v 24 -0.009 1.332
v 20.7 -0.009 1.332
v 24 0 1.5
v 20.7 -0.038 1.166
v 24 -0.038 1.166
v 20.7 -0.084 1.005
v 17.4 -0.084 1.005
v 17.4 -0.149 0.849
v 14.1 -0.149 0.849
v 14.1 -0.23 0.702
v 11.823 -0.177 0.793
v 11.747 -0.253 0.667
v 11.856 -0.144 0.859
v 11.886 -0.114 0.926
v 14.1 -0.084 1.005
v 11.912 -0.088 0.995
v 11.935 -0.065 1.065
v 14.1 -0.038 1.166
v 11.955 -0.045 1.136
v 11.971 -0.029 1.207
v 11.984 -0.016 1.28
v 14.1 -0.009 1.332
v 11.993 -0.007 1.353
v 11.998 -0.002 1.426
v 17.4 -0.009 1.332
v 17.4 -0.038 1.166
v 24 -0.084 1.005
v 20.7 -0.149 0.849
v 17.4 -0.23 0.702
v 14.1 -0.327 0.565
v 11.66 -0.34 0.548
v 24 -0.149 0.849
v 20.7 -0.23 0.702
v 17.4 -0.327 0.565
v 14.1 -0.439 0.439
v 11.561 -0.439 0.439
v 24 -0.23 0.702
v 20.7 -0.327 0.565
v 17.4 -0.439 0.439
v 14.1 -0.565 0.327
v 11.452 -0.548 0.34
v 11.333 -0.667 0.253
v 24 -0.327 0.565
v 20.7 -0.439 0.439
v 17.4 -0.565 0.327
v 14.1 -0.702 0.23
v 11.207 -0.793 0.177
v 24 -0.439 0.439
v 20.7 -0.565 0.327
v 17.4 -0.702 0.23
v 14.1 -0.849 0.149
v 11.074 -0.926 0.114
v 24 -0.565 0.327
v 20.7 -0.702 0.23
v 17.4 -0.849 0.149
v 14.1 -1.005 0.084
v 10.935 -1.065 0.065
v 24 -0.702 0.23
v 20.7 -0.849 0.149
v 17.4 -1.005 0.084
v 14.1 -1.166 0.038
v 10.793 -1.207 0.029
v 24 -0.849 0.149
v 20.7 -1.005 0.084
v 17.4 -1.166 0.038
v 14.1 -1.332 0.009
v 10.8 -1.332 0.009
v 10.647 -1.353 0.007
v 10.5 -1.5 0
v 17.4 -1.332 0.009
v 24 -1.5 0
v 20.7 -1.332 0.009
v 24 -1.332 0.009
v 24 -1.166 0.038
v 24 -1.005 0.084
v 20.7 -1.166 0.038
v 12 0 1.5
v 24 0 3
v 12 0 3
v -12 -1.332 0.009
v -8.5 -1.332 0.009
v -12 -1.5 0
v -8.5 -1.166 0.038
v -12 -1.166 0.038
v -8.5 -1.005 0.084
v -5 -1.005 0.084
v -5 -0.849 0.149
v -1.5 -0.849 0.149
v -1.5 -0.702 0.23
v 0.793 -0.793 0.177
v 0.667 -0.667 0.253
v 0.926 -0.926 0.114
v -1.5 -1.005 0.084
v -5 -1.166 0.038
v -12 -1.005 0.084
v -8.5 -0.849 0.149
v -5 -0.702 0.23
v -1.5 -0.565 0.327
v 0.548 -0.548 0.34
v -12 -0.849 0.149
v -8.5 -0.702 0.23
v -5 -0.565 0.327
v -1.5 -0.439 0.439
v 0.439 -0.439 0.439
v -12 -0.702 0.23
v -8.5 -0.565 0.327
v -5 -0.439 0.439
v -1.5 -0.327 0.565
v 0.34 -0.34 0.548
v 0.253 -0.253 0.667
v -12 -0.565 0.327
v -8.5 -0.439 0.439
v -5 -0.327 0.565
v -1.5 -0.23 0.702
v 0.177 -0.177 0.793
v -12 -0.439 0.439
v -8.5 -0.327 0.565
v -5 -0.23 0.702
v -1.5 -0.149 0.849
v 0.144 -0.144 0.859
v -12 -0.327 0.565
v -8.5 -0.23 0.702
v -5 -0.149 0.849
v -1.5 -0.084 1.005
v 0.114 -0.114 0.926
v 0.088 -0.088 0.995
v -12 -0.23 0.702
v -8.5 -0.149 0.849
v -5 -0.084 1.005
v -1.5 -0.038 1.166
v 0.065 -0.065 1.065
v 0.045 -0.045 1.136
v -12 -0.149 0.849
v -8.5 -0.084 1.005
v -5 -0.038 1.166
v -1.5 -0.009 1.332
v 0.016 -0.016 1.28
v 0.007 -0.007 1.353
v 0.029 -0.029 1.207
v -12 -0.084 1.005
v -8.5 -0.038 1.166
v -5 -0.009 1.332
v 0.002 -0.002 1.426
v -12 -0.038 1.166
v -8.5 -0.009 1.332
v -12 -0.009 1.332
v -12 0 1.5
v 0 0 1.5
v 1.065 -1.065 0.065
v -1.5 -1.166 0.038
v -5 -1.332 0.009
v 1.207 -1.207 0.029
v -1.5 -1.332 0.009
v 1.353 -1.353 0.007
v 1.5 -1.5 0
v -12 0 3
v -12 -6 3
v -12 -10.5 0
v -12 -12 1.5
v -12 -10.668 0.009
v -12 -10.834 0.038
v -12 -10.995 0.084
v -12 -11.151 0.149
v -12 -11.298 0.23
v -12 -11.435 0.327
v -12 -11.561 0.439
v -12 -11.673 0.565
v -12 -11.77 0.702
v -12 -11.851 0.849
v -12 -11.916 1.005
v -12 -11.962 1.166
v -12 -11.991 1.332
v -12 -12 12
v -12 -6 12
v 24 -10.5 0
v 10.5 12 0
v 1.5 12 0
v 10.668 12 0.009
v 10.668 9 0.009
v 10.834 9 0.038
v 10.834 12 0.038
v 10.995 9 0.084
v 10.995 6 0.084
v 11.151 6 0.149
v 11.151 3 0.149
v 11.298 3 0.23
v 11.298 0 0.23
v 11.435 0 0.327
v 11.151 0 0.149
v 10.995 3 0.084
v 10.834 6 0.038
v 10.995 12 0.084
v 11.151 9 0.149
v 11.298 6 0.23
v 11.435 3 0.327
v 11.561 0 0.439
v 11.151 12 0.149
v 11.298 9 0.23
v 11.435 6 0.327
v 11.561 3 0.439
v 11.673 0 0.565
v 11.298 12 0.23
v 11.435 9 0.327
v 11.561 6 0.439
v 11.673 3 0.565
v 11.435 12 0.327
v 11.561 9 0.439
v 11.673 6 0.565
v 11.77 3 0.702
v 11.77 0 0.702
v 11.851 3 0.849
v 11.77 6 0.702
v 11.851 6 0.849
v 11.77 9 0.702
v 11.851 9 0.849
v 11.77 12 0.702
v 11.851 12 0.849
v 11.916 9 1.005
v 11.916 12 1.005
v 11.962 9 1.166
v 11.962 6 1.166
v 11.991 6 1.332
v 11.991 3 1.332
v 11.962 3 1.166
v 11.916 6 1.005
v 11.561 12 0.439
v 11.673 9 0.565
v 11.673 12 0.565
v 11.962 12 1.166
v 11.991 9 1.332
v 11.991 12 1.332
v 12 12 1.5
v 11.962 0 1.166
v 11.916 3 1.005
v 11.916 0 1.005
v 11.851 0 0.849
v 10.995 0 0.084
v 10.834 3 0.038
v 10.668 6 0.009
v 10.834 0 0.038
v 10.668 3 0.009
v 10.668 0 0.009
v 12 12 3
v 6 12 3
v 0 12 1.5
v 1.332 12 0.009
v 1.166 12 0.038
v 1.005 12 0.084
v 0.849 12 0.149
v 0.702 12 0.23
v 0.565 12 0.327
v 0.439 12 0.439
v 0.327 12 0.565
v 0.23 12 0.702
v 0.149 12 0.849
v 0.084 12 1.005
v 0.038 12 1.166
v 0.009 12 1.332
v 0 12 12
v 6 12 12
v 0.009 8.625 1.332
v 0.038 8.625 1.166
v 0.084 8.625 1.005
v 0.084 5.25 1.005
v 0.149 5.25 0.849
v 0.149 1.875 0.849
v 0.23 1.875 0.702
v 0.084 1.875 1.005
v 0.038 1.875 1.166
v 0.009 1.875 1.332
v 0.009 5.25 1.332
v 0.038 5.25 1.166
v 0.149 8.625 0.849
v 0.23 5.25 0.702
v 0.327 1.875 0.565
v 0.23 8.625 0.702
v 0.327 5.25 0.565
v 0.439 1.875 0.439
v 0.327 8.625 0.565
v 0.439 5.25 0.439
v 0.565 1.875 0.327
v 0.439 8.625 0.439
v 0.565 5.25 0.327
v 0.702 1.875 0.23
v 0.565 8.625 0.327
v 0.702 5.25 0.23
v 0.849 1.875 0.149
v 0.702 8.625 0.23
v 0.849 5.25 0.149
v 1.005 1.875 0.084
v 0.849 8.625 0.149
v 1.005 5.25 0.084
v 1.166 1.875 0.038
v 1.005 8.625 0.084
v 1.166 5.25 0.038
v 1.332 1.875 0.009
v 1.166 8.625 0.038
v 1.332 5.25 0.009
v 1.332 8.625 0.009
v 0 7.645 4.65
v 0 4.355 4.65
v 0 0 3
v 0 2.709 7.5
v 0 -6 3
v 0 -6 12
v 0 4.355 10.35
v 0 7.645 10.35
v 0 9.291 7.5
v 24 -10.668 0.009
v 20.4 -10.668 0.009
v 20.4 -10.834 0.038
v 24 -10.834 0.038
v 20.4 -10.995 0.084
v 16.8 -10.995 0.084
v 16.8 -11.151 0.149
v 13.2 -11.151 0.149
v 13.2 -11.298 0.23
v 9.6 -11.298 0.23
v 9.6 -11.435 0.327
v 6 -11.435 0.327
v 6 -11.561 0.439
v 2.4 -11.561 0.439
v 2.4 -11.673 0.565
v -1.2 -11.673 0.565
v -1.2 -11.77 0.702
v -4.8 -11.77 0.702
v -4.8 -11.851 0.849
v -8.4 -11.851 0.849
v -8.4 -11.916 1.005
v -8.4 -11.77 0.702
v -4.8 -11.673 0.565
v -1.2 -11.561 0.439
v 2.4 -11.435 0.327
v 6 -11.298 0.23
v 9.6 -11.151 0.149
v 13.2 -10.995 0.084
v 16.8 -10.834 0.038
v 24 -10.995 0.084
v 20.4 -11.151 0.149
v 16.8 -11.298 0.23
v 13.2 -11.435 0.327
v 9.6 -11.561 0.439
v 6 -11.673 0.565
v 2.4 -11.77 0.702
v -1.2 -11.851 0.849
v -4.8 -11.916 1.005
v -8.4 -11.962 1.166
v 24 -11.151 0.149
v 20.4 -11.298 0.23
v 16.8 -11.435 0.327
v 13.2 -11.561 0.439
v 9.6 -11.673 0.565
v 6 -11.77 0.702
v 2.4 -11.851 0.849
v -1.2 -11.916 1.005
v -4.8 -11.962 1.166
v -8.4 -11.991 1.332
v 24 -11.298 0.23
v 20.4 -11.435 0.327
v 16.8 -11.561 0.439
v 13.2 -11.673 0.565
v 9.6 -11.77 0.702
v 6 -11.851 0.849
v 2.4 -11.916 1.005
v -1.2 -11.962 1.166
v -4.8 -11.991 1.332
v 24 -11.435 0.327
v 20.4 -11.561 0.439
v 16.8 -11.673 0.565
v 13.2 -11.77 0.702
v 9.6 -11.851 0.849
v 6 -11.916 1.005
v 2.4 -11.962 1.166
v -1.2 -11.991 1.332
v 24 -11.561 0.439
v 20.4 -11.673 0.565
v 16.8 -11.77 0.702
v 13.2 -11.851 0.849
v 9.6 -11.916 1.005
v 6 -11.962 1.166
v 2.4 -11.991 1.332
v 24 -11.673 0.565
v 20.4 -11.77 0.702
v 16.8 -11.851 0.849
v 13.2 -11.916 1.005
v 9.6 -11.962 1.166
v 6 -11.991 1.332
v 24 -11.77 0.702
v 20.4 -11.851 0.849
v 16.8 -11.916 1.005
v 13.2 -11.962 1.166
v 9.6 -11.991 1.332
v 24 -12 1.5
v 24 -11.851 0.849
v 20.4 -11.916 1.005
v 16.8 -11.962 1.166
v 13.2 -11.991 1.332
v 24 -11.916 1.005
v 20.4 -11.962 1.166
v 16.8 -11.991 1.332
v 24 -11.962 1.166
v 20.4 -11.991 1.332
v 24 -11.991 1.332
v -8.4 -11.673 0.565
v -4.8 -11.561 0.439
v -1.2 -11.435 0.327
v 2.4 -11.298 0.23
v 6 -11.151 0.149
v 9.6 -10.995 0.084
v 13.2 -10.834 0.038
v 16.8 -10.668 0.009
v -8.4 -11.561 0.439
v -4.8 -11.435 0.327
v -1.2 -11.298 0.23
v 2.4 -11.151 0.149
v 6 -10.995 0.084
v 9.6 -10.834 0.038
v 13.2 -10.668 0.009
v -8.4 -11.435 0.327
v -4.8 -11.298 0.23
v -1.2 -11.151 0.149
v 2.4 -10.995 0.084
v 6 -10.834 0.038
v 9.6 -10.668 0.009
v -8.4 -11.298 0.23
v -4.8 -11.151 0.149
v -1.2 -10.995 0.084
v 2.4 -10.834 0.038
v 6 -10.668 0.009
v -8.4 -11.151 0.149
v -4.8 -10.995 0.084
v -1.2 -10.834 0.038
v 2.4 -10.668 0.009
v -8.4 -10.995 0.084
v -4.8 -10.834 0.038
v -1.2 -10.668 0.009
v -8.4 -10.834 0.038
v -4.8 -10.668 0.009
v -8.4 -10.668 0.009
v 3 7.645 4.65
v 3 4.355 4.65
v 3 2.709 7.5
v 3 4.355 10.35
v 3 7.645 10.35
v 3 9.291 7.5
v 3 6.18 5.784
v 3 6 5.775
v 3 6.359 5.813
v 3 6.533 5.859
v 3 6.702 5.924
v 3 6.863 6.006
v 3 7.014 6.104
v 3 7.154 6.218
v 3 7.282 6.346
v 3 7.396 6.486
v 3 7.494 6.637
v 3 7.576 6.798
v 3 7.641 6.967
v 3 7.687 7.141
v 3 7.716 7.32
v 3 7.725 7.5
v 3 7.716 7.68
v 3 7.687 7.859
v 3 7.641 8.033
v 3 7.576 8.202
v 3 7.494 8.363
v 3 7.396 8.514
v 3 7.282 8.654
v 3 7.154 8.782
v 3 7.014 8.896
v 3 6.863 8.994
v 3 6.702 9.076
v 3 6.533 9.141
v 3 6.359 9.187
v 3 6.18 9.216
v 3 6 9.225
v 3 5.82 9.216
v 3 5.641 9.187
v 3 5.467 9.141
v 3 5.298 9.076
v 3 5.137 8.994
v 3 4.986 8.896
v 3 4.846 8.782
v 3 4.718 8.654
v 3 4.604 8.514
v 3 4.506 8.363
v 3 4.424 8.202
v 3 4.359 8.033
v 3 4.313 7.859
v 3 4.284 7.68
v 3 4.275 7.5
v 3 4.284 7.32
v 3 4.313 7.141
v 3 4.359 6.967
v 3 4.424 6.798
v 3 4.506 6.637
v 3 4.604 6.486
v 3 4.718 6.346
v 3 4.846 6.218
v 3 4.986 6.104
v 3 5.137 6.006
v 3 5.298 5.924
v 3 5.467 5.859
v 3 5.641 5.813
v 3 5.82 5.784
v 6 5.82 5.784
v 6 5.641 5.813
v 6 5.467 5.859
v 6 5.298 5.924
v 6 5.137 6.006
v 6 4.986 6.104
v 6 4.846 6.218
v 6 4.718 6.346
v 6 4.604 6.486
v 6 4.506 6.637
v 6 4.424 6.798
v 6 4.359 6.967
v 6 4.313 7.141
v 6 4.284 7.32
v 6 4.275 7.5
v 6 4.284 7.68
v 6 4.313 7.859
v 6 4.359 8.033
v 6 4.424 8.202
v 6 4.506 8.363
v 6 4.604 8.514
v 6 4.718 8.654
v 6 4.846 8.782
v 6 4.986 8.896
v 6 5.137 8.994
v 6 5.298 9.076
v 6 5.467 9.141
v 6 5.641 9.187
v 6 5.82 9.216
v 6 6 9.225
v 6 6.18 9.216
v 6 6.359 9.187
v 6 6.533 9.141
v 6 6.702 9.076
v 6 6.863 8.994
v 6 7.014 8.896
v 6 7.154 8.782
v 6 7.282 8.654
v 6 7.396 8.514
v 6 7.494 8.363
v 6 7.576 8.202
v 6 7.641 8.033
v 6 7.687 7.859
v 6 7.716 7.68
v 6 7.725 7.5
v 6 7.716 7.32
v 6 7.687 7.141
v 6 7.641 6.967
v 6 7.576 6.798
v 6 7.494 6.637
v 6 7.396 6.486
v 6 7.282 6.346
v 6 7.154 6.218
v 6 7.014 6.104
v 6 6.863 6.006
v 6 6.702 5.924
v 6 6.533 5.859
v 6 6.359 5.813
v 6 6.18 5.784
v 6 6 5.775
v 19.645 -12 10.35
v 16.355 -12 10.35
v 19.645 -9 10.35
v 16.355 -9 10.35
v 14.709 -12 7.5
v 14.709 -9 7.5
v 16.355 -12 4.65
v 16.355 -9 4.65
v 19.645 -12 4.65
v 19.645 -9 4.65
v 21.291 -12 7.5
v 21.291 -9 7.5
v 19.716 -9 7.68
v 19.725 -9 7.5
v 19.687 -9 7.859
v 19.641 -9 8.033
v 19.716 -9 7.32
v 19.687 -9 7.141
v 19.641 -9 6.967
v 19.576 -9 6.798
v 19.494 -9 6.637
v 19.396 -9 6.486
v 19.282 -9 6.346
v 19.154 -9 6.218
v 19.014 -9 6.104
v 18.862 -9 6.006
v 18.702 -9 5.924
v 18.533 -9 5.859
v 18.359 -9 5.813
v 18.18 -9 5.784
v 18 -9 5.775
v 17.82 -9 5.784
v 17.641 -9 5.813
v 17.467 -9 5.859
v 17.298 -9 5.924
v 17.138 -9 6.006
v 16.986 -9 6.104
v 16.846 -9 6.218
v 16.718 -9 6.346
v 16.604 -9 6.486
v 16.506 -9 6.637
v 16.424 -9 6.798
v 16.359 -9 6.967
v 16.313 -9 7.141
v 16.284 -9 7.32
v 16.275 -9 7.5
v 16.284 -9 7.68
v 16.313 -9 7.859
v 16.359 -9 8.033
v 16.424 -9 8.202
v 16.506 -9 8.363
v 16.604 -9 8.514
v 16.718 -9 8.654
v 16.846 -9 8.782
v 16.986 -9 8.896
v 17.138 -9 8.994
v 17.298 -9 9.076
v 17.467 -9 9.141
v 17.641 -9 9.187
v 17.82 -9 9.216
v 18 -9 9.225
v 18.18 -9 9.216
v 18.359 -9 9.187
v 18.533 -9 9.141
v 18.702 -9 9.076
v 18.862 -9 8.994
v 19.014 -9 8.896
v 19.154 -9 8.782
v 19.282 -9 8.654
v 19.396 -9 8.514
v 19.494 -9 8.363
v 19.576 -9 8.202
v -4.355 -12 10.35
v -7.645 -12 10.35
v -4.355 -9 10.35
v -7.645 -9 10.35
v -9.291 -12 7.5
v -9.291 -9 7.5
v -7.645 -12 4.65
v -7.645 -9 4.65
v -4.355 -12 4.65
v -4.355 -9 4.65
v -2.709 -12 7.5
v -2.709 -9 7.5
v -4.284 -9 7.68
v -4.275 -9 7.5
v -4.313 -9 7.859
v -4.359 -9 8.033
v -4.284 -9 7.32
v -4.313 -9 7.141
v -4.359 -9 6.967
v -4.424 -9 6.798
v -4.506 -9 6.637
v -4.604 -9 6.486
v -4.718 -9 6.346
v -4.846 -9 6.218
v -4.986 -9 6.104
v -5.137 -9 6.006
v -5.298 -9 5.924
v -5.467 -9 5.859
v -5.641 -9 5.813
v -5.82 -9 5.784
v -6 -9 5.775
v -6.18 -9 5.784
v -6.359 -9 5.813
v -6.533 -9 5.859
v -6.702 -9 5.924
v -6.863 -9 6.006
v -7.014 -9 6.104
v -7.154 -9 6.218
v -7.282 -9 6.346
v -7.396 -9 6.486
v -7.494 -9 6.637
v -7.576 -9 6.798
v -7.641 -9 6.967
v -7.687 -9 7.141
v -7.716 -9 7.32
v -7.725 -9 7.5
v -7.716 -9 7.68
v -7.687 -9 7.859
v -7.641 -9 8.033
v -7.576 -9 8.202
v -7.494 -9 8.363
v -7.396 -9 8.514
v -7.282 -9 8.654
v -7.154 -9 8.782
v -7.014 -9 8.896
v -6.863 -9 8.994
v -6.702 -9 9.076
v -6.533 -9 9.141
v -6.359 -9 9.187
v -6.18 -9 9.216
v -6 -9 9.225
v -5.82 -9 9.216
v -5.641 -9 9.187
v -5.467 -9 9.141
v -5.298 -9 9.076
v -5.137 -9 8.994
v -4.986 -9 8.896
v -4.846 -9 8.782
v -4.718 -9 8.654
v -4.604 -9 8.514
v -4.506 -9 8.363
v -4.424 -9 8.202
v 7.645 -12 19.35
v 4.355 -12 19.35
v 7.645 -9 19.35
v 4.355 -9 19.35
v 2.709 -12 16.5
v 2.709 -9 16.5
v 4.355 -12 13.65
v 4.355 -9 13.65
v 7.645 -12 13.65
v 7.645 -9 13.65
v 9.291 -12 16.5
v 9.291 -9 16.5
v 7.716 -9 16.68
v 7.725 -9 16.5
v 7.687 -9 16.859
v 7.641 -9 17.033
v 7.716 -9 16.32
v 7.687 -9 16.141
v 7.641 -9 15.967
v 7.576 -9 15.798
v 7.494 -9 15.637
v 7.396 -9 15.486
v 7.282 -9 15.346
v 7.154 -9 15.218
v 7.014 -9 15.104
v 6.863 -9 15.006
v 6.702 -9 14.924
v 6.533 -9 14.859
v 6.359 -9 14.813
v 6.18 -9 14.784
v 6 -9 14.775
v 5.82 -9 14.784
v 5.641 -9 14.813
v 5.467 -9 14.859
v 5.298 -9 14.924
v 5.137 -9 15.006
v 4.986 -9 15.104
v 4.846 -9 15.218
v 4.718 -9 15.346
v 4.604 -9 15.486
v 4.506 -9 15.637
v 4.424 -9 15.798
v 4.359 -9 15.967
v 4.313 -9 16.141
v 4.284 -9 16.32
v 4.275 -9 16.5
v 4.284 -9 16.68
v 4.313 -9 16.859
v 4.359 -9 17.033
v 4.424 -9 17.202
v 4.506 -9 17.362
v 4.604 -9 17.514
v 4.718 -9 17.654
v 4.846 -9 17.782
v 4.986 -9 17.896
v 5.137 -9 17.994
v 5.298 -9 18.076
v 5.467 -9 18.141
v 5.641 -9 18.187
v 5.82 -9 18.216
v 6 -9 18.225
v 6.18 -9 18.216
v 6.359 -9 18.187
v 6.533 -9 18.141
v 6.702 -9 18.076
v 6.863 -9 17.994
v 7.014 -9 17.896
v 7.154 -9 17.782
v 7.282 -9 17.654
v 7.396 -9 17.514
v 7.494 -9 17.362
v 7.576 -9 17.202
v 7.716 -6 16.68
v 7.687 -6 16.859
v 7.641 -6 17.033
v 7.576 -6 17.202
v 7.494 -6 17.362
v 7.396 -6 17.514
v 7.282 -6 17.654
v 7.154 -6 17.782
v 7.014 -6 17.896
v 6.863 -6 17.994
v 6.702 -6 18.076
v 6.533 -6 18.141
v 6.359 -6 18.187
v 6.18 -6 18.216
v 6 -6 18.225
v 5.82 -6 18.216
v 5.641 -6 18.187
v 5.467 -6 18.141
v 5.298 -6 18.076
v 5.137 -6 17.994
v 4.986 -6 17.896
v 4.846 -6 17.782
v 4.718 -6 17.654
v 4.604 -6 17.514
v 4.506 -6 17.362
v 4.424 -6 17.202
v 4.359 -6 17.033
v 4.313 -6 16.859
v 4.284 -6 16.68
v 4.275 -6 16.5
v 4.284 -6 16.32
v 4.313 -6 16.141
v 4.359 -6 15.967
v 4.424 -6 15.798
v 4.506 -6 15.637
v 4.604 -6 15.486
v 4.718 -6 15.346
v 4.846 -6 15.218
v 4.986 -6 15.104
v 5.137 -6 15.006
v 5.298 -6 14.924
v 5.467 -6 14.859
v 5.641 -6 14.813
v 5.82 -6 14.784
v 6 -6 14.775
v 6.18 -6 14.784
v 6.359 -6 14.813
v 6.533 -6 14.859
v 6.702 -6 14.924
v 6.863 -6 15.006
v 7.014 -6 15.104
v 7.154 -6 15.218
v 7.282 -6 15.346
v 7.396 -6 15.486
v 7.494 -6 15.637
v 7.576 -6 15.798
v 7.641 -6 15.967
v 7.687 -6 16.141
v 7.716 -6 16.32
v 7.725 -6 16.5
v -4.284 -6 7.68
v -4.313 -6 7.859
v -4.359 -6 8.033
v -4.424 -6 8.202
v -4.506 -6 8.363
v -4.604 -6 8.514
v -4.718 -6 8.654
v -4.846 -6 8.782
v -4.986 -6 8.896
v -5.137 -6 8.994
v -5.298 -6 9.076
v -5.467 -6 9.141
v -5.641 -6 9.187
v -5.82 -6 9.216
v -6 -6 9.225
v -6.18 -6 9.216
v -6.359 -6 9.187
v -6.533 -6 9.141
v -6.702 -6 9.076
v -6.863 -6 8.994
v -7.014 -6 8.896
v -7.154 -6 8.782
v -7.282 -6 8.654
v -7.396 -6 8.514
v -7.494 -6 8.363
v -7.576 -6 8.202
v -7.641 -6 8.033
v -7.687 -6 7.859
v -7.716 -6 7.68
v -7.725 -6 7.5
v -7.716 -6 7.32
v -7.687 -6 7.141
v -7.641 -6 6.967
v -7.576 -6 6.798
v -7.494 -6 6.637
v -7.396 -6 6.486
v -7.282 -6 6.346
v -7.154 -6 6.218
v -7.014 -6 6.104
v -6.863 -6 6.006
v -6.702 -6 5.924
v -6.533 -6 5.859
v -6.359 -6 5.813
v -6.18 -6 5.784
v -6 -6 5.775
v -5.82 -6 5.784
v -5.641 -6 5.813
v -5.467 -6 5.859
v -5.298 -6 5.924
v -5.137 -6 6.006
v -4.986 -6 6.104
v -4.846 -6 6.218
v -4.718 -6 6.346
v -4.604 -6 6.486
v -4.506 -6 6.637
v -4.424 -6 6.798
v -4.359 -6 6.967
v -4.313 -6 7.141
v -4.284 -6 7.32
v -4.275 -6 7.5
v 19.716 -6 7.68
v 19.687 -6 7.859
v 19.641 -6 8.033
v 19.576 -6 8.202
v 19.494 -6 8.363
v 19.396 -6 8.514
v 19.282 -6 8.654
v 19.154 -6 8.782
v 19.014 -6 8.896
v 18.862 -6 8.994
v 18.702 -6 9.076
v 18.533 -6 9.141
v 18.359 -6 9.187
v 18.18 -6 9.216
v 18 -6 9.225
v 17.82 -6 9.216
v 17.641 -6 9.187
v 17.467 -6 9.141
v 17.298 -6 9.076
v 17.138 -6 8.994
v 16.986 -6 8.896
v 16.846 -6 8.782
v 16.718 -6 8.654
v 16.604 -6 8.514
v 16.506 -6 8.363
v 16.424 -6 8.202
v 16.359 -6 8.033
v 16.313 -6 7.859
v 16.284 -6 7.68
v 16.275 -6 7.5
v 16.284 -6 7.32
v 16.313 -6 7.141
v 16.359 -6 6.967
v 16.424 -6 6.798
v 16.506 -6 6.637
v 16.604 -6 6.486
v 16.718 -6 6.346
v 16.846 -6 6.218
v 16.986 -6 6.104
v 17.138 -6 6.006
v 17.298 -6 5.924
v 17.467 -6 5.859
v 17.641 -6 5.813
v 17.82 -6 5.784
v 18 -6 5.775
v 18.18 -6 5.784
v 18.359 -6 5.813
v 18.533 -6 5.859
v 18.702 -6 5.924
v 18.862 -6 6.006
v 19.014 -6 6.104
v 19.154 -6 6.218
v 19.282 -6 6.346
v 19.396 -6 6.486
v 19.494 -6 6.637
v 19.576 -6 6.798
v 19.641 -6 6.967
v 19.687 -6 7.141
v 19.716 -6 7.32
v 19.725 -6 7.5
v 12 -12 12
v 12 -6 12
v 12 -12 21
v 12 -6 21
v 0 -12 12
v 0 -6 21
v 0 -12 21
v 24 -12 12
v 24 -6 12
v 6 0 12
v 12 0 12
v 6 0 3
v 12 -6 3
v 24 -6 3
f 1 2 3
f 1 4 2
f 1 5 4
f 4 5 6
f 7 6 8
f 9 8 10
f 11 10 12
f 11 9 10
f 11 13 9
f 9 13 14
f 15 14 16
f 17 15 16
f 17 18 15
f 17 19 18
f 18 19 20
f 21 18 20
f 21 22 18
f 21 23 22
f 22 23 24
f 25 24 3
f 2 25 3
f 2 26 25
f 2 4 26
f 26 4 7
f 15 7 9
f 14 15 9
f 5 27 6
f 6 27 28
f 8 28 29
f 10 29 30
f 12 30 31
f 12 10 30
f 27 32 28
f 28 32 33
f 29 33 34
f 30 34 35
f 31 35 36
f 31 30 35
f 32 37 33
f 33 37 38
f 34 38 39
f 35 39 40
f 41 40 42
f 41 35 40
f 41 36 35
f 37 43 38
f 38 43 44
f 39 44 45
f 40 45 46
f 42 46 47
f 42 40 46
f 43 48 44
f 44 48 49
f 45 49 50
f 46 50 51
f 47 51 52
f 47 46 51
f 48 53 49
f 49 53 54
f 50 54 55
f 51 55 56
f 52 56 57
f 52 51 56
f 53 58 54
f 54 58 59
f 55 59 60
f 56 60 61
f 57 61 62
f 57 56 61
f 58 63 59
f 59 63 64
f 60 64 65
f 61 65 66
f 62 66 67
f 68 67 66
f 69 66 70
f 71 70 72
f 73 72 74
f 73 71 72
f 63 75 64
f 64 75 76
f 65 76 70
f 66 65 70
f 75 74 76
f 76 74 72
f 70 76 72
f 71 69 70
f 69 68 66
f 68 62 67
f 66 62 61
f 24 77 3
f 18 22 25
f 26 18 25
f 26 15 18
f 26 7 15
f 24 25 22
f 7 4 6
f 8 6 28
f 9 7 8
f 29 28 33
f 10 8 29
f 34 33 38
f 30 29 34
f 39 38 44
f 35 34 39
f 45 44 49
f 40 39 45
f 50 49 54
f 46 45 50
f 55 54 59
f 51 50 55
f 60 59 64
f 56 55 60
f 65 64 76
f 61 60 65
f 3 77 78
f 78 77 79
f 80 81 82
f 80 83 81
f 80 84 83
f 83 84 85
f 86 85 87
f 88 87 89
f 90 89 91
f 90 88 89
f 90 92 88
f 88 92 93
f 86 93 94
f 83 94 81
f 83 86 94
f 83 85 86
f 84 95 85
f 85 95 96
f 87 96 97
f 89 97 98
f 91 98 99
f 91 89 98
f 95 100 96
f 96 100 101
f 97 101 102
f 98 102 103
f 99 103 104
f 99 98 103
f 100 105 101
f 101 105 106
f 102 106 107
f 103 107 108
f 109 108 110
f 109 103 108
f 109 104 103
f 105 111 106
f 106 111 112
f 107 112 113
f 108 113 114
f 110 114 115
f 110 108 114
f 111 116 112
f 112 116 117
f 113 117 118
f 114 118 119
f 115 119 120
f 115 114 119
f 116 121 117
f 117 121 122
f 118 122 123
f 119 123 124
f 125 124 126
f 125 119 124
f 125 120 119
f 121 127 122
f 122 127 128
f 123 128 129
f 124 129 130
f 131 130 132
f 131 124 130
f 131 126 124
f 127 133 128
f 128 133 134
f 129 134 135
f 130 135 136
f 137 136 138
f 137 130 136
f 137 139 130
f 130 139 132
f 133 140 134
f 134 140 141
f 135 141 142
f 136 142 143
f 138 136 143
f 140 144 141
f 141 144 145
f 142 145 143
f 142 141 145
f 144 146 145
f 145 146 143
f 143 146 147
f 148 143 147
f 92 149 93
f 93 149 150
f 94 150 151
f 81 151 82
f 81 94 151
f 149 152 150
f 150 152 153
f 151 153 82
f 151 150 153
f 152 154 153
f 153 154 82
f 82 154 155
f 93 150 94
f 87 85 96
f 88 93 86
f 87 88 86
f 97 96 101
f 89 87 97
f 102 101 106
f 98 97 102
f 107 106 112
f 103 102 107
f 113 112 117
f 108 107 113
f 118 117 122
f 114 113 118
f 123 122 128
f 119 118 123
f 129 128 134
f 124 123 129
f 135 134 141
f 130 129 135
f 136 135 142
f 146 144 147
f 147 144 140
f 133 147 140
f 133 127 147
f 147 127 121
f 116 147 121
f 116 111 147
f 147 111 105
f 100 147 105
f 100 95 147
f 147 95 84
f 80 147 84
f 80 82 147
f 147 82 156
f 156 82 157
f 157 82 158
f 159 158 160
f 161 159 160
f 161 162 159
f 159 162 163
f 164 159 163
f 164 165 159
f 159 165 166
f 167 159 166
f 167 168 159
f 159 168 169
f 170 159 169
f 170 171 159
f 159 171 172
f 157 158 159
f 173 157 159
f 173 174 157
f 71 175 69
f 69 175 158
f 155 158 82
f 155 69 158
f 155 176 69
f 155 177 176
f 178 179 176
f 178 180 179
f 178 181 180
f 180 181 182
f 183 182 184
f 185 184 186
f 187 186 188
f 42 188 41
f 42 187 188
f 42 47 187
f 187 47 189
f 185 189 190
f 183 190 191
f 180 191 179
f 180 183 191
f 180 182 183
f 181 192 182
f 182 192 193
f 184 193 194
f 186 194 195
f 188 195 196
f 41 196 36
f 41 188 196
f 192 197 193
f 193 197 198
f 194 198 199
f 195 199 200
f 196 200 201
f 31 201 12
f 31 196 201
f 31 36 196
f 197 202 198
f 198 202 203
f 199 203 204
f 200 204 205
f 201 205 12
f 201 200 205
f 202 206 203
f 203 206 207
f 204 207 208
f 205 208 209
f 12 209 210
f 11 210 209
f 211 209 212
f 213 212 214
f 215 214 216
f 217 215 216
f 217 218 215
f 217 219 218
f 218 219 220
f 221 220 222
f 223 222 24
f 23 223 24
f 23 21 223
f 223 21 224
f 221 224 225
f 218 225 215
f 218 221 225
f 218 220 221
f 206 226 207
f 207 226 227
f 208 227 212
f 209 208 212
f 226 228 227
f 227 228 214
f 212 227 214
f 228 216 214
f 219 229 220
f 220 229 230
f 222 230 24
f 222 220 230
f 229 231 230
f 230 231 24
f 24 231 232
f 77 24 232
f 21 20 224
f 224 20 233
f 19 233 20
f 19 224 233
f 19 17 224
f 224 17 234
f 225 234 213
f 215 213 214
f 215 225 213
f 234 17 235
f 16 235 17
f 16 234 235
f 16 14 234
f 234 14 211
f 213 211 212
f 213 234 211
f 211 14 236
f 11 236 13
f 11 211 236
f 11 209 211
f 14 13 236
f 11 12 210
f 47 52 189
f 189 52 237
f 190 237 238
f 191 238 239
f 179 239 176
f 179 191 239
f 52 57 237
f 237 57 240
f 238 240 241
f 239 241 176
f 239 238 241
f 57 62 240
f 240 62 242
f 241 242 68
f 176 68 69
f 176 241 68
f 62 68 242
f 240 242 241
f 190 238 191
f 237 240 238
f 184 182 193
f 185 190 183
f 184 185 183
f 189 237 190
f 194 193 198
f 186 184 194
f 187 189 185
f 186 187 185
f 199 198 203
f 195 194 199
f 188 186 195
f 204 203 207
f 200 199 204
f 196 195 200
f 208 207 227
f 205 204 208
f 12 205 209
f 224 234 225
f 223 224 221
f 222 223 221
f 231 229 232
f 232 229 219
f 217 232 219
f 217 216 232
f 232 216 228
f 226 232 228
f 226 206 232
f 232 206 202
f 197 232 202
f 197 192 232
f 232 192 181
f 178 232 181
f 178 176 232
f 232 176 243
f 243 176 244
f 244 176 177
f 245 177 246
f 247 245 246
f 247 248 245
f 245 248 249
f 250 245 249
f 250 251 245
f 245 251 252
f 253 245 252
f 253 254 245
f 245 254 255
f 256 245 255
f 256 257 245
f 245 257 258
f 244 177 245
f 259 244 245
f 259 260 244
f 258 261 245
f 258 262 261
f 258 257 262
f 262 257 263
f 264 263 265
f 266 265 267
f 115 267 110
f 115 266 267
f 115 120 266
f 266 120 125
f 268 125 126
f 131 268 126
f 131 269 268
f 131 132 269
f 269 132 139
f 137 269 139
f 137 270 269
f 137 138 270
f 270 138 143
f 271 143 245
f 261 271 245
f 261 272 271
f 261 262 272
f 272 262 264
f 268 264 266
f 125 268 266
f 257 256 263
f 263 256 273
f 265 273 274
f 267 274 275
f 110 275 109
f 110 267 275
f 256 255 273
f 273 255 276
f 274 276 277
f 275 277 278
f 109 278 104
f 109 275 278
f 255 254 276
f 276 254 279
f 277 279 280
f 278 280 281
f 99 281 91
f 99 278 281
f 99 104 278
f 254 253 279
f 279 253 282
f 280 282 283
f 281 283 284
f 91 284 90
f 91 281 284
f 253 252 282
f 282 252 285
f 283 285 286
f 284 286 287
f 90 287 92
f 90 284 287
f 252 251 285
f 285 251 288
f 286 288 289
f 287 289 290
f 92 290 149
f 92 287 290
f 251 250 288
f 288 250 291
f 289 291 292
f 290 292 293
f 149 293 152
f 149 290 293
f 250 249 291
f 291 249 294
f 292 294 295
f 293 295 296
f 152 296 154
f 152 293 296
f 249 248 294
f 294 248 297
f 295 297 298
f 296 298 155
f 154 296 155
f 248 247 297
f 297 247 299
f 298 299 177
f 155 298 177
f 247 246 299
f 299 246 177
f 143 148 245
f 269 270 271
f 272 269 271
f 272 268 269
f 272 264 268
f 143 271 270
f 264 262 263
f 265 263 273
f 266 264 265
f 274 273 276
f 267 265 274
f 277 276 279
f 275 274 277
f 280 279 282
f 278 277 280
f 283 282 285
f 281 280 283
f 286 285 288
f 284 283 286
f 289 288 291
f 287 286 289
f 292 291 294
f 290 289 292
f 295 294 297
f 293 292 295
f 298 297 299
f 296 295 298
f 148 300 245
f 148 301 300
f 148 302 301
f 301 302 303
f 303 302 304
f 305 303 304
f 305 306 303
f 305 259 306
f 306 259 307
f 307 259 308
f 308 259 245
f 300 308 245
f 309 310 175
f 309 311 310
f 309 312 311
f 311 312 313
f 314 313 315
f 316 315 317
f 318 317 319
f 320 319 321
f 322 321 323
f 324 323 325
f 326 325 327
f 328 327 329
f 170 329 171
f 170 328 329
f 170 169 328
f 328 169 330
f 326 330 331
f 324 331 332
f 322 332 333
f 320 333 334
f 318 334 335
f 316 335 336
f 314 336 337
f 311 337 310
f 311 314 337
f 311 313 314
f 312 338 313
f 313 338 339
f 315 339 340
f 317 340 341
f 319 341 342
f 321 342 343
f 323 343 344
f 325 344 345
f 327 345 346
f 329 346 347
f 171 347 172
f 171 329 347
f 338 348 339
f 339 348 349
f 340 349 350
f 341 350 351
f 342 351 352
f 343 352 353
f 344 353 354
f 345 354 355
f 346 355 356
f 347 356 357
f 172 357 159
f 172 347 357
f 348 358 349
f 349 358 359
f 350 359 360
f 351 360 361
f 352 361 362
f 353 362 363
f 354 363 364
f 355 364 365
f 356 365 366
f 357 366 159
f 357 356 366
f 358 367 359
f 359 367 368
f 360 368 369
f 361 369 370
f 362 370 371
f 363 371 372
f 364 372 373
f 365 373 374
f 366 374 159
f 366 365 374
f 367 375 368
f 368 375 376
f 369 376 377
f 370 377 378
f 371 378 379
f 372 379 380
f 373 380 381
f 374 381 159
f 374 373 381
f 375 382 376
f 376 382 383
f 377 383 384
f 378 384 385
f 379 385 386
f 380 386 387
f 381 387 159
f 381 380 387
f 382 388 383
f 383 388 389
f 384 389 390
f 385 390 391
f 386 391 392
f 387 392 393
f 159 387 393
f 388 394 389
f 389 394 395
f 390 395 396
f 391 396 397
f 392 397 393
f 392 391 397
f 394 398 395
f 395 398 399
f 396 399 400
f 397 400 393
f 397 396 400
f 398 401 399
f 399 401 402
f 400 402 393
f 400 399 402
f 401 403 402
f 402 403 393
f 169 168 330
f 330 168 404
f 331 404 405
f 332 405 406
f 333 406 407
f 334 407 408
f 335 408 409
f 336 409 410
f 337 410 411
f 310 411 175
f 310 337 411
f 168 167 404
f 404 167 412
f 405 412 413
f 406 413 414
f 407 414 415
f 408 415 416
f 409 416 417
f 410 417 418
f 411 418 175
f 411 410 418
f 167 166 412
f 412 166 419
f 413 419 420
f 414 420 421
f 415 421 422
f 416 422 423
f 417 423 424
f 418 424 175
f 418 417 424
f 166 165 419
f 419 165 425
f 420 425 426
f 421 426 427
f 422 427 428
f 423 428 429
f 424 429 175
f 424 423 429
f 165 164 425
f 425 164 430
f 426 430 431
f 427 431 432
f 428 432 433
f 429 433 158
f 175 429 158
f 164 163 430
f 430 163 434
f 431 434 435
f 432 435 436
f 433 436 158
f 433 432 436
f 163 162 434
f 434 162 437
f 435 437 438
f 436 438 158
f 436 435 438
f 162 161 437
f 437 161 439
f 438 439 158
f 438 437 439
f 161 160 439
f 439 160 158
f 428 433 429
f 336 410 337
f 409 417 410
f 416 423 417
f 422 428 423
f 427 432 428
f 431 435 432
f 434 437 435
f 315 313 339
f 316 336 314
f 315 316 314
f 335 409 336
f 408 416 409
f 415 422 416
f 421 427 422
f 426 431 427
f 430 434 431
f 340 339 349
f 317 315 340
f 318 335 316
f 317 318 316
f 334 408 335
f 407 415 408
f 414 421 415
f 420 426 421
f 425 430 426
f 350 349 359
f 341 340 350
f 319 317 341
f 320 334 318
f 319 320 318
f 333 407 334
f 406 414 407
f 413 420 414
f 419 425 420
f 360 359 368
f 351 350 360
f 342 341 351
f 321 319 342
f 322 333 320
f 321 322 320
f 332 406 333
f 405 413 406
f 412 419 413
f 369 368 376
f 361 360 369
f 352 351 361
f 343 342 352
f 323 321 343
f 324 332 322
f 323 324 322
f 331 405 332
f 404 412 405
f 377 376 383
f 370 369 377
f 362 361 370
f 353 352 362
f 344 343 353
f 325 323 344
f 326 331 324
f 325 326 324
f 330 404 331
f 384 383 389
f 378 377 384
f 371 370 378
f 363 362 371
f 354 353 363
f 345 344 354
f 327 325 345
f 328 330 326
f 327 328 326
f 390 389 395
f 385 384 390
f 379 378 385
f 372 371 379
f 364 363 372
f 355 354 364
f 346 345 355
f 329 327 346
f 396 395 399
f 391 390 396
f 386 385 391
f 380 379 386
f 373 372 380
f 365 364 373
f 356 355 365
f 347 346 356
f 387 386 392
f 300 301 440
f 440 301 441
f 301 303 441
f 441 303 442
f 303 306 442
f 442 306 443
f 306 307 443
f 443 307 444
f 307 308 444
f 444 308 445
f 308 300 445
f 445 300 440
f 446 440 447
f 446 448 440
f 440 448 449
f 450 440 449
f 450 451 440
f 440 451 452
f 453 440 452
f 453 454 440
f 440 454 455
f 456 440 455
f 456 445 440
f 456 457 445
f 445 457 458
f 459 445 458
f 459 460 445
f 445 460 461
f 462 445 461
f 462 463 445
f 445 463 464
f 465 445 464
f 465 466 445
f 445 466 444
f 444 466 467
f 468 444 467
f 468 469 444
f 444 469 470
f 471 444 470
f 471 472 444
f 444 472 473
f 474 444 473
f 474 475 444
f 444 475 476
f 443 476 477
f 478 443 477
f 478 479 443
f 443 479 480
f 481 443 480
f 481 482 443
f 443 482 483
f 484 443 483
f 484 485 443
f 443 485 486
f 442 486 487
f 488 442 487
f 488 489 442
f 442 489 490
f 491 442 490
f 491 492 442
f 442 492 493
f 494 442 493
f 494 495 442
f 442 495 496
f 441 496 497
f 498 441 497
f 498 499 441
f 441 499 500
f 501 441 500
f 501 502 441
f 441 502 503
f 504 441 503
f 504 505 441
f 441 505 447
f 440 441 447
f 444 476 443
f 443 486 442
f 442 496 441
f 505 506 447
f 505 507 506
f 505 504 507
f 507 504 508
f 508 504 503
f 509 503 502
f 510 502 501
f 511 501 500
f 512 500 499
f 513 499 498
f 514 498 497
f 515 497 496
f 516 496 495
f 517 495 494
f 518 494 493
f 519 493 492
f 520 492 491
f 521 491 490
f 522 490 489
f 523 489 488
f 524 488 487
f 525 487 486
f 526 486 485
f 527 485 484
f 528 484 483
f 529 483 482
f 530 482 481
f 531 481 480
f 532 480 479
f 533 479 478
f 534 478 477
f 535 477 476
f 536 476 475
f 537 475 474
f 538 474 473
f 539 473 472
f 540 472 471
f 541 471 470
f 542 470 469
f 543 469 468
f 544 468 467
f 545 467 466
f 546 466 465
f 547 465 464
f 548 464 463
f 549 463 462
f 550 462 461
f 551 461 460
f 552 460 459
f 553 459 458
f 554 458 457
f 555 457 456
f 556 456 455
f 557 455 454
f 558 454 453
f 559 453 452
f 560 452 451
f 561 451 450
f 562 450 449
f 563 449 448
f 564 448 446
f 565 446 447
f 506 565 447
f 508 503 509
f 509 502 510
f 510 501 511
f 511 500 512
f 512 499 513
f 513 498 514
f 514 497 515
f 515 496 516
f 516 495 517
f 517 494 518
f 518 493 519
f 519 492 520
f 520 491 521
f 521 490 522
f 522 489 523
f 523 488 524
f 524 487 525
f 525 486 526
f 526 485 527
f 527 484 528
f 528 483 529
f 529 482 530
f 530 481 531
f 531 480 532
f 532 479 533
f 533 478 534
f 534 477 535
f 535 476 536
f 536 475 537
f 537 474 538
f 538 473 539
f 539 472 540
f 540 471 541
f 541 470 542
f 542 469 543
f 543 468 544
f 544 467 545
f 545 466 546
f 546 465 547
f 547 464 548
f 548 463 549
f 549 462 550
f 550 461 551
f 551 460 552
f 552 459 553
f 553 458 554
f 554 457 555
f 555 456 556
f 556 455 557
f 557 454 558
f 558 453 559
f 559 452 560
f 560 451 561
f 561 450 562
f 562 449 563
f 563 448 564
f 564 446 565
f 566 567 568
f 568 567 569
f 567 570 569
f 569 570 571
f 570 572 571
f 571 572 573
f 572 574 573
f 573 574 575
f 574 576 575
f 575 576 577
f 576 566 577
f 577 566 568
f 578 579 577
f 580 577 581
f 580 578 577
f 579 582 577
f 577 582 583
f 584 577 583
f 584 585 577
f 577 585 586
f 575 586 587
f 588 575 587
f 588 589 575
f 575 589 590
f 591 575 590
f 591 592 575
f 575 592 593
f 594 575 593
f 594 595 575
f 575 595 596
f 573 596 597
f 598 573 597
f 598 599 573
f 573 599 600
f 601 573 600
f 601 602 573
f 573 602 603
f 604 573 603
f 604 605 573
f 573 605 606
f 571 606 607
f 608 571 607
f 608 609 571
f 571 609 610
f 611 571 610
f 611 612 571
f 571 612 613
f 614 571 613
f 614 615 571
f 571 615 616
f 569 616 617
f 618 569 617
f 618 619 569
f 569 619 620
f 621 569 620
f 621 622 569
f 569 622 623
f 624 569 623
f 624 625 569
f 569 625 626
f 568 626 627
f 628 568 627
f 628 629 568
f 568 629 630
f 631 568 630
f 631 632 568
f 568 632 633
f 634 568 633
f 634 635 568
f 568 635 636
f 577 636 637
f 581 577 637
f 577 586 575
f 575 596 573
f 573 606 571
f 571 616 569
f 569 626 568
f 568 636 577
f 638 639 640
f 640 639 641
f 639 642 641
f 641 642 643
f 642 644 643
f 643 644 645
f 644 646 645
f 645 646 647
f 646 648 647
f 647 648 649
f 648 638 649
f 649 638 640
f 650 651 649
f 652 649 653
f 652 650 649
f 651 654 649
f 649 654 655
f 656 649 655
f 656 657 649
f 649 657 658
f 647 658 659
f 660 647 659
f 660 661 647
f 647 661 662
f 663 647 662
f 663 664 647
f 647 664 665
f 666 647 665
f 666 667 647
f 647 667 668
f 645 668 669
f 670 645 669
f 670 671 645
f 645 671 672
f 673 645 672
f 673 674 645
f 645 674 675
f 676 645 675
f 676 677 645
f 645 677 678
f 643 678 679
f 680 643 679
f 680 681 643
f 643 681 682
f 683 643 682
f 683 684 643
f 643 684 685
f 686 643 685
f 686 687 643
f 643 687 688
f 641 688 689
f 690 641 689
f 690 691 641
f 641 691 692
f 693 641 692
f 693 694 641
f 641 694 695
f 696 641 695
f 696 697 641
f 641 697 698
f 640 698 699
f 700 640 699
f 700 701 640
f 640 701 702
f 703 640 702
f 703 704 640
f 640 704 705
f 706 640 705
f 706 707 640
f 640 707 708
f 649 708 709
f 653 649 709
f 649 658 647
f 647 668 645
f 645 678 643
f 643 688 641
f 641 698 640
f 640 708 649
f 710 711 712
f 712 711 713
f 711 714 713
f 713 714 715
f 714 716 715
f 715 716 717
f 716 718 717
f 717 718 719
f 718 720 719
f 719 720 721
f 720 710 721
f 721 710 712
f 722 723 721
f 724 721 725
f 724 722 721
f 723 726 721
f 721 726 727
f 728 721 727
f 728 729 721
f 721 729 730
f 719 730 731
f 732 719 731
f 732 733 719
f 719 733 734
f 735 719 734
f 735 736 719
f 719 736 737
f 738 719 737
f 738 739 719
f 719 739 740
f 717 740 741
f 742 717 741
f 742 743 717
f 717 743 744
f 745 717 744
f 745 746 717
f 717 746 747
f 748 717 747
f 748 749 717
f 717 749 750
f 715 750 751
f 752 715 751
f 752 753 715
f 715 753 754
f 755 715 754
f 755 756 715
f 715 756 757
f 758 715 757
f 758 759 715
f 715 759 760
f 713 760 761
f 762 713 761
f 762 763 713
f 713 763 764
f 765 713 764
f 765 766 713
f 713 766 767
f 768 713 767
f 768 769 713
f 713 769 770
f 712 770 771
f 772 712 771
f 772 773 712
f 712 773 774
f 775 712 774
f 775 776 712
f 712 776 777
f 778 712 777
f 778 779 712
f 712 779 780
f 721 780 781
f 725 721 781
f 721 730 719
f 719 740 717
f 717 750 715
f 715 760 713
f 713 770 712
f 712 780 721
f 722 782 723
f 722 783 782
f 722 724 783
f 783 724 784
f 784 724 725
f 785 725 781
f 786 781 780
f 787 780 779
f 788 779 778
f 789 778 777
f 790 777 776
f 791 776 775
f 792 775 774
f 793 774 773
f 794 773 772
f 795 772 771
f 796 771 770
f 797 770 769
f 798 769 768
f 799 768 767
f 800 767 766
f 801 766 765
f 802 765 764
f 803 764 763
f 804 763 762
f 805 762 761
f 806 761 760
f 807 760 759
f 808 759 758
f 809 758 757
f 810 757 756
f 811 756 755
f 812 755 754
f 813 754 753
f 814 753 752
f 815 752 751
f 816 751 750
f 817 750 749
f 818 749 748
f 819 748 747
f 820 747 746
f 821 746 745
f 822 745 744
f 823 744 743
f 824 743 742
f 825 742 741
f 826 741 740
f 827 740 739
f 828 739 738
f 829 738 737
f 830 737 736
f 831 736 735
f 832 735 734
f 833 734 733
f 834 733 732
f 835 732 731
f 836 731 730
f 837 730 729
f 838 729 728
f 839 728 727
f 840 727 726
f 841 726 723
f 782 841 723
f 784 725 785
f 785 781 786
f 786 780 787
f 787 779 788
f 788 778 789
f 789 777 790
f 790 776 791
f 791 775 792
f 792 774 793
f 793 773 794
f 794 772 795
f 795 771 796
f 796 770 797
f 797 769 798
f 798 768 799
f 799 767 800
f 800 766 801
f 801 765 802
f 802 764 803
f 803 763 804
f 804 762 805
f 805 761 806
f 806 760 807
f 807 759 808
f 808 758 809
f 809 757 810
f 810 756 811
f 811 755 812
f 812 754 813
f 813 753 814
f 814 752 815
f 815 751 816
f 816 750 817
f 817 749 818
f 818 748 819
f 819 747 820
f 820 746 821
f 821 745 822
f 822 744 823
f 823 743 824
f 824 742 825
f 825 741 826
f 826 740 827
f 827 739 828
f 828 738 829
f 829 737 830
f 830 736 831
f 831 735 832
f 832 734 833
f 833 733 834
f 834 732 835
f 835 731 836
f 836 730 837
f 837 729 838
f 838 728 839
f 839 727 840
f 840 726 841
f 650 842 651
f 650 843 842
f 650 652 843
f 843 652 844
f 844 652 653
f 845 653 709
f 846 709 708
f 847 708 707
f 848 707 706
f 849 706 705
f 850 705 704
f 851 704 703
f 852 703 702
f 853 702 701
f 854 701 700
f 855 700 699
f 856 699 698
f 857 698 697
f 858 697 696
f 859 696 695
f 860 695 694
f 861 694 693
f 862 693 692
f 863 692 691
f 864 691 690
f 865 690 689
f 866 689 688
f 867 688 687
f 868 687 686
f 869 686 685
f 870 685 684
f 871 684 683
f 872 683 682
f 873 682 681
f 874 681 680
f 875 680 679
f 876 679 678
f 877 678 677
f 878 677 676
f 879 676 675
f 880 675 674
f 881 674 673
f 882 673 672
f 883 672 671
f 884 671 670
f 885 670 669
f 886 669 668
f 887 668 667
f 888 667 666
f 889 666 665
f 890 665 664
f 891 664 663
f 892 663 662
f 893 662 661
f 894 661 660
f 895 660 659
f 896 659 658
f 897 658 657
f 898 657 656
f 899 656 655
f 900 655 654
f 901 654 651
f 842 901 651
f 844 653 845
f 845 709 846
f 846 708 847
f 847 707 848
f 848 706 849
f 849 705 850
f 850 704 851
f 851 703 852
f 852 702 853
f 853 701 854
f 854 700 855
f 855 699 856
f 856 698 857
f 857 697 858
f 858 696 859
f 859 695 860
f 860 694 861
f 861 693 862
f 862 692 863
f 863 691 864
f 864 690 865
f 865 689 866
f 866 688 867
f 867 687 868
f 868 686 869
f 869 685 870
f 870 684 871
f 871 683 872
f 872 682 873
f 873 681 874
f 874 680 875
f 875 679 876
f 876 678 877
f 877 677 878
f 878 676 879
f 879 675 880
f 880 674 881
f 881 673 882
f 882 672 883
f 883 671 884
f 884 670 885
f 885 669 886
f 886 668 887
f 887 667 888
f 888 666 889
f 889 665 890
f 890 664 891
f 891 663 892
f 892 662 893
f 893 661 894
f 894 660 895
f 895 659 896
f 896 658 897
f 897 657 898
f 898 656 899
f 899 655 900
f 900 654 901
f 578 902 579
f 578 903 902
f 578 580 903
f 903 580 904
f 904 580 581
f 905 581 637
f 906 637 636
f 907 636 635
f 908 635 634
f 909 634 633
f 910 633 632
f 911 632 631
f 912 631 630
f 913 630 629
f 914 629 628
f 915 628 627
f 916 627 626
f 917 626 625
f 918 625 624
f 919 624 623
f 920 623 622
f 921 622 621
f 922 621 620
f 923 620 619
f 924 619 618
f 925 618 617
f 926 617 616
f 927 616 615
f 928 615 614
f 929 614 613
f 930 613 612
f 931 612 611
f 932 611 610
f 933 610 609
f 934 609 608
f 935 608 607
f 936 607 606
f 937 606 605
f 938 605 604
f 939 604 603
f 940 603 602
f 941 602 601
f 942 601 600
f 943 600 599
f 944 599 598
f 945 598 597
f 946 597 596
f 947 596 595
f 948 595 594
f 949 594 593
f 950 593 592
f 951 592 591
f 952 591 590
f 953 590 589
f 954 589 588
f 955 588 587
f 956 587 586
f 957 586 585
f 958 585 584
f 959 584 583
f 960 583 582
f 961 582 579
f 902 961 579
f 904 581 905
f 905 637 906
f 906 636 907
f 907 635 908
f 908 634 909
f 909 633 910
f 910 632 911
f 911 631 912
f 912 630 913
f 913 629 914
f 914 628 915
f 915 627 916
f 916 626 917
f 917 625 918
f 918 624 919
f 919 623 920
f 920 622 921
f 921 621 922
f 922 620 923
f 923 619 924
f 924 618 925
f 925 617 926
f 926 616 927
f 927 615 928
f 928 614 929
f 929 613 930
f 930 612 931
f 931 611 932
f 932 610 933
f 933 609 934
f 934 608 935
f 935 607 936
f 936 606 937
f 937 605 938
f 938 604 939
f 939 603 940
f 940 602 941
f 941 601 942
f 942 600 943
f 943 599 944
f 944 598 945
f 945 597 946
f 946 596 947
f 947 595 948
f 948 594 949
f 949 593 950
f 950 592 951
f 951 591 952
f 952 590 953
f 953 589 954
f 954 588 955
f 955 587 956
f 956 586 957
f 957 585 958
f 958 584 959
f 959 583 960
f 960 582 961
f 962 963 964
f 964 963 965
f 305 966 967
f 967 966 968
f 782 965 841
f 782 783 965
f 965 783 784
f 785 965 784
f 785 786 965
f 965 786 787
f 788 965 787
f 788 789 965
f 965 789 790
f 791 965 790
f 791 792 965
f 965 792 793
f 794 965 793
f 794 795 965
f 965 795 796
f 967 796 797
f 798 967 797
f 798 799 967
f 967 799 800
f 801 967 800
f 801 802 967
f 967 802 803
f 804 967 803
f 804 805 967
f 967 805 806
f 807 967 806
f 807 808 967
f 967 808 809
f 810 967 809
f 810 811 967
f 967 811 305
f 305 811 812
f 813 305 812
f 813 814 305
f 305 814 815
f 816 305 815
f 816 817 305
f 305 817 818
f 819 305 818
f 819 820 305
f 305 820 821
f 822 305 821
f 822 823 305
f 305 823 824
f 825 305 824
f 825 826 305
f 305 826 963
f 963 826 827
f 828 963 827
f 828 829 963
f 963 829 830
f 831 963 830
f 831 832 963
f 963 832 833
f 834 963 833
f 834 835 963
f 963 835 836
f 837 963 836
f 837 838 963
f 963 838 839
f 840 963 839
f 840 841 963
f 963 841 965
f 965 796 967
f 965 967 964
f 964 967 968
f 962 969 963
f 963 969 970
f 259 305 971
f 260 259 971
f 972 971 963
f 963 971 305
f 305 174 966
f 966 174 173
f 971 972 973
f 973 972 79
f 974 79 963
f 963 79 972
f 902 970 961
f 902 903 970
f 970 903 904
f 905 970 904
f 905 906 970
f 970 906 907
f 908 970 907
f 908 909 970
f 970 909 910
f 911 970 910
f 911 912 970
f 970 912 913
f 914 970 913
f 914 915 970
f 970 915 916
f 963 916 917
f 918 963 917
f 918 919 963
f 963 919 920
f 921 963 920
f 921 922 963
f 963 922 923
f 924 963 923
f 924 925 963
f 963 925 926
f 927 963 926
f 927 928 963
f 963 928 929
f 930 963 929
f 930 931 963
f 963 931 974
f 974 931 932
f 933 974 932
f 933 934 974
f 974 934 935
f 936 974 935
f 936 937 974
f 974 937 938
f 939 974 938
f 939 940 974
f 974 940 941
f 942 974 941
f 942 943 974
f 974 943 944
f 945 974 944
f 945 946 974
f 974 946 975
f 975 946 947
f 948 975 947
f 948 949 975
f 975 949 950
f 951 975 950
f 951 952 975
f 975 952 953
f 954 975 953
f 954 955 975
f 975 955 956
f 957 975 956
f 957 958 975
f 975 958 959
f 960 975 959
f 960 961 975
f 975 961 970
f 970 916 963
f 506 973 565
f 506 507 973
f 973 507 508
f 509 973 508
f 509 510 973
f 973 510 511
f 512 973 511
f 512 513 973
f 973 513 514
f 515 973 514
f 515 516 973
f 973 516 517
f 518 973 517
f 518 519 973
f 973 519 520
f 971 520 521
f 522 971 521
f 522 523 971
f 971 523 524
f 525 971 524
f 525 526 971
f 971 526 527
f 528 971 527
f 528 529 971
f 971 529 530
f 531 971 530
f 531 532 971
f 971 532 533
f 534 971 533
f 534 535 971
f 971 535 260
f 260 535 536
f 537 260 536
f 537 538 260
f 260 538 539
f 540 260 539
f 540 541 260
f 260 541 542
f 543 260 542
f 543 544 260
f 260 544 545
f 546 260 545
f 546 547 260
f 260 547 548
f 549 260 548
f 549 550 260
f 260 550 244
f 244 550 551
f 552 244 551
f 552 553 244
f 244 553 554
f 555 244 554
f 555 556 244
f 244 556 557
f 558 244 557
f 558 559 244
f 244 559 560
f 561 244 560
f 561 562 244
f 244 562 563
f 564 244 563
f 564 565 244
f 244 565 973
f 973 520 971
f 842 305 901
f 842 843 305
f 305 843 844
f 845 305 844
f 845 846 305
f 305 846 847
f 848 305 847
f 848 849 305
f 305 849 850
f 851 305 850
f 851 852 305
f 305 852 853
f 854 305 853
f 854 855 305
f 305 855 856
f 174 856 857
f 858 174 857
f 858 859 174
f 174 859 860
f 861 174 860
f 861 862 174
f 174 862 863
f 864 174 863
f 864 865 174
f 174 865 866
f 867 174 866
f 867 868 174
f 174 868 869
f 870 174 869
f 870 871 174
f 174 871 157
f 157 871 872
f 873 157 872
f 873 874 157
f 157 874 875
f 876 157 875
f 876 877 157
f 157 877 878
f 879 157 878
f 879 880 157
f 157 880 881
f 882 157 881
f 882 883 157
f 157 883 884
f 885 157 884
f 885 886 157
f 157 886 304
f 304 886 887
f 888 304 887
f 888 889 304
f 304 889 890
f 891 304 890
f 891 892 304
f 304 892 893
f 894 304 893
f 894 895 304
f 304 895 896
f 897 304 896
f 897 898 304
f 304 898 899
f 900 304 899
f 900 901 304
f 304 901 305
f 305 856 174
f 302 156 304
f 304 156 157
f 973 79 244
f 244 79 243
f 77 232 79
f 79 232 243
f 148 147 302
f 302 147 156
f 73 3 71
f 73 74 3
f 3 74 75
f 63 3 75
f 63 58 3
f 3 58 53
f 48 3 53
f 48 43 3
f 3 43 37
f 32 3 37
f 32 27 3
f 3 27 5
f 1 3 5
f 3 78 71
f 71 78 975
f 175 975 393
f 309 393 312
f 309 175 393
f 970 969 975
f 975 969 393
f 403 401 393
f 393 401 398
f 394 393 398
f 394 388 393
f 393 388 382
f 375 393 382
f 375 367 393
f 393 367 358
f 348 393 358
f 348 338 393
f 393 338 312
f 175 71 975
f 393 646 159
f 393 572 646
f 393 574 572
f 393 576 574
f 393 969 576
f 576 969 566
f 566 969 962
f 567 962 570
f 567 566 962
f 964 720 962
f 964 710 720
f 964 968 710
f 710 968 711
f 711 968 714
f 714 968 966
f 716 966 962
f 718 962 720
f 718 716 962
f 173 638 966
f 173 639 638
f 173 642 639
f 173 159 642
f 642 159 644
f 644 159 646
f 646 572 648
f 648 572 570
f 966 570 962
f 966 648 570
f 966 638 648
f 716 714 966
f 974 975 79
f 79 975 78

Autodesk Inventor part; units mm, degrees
ref_plane "YZ Plane" through (0, 0, 0) normal (1, 0, 0) x (0, 1, 0)
ref_plane "XZ Plane" through (0, 0, 0) normal (0, 1, 0) x (-1, 0, 0)
ref_plane "XY Plane" through (0, 0, 0) normal (0, 0, 1) x (1, 0, 0)
sketch "Sketch1" plane through (0, 0, 0) normal (0, 0, 1) x (1, 0, 0)
  line L0 (0, 0) -> (12, 0)
  line L1 (12, 0) -> (12, 12)
  line L2 (12, 12) -> (0, 12)
  line L3 (0, 12) -> (0, 0)
  line L4 (12, 0) -> (0, 0)
  line L5 (0, 0) -> (0, -12)
  line L6 (0, -12) -> (12, -12)
  line L7 (12, -12) -> (12, 0)
  line L8 (12, 0) -> (24, 0)
  line L9 (24, 0) -> (24, -12)
  line L10 (24, -12) -> (12, -12)
  line L11 (12, -12) -> (12, 0)
  line L12 (0, -12) -> (-12, -12)
  line L13 (-12, -12) -> (-12, 0)
  line L14 (-12, 0) -> (0, 0)
  line L15 (0, 0) -> (0, -12)
  line L16 (0, -12) -> (12, -12)
  line L17 (12, -12) -> (12, -24)
  line L18 (12, -24) -> (0, -24)
  line L19 (0, -24) -> (0, -12)
  dimension "d0" = 12
  dimension "d1" = 12
  dimension "d2" = 12
  dimension "d3" = 12
  dimension "d4" = 12
  dimension "d5" = 12
  dimension "d6" = 12
  dimension "d7" = 12
  dimension "d8" = 12
  dimension "d9" = 12
extrude "Extrusion1" add sketch "Sketch1" along normal blind 3
sketch "Sketch2" plane through (0, 0, 3) normal (0, 0, 1) x (1, 0, 0)
  line L0 (-12, 0) -> (-12, -12)
  line L1 (-12, -12) -> (-12, -6)
  line L2 (-12, -6) -> (0, -6)
  line L3 (-12, -12) -> (0, -12)
  line L4 (0, -6) -> (0, -12)
  line L5 (0, -12) -> (-12, -12)
  line L6 (12, -24) -> (12, -12)
  line L7 (12, -12) -> (12, -6)
  line L8 (12, -6) -> (24, -6)
  line L9 (24, -12) -> (24, 0)
  line L10 (12, -12) -> (24, -12)
  line L11 (24, -6) -> (24, -12)
  line L12 (24, -12) -> (12, -12)
  line L13 (0, 0) -> (0, -6)
  line L14 (12, 0) -> (12, 12)
  line L15 (0, 0) -> (12, 0)
  line L16 (12, 0) -> (12, -6)
  line L17 (12, -12) -> (0, -12)
  line L18 (0, 12) -> (0, 0)
  line L19 (0, 0) -> (0, 12)
  line L20 (0, 12) -> (6, 12)
  line L21 (12, 12) -> (0, 12)
  line L22 (6, 12) -> (6, 0)
  line L23 (6, 0) -> (0, 0)
  line L24 (0, -12) -> (0, -24)
  line L25 (0, -12) -> (0, -24)
  line L26 (0, -24) -> (6, -24)
  line L27 (0, -24) -> (12, -24)
  line L28 (6, -24) -> (6, -12)
  line L29 (6, -12) -> (0, -12)
  dimension "d12" = 6
  dimension "d13" = 12
extrude "Extrusion2" add sketch "Sketch2" along normal blind 9 contours L2 L4 L3 L0 | L13 L15 L16 L7 L17 L4 | L17 L28 L26 L24 | L18 L20 L22 L15 | L7 L8 L9 L10
sketch "Sketch3" plane through (0, 0, 12) normal (0, 0, 1) x (1, 0, 0)
  line L0 (0, -6) -> (12, -6)
  line L1 (12, -12) -> (6, -12)
  line L2 (12, -6) -> (12, -12)
  line L3 (0, -12) -> (0, -24)
  line L4 (12, -12) -> (0, -12)
  line L5 (0, -12) -> (0, -6)
  point P0 (0, 0)
extrude "Extrusion3" add sketch "Sketch3" along normal blind 9
sketch "Sketch4" plane through (6, -12, 3) normal (0, -1, 0) x (1, 0, 0)
  point P0 (-6, -3)
sketch "Sketch5" plane through (-12, -6, 3) normal (0, 1, 0) x (1, 0, 0)
  circle A0 centre (6, -4.5) radius 1.725
  line L0 (0, 0) -> (0, -9)
  line L1 (12, -9) -> (0, -9)
  circle A1 centre (18, -13.5) radius 1.725
  line L2 (24, -18) -> (12, -18)
  line L3 (24, -9) -> (24, -18)
  circle A2 centre (30, -4.5) radius 1.725
  line L4 (36, 0) -> (36, -9)
  line L5 (36, -9) -> (24, -9)
  point P0 (12, 3)
  dimension "d19" = 3.45
  dimension "d20" = 6
  dimension "d21" = 4.5
  dimension "d22" = 3.45
  dimension "d23" = 4.5
  dimension "d24" = 6
  dimension "d25" = 3.45
  dimension "d26" = 6
  dimension "d27" = 4.5
extrude "Extrusion4" cut sketch "Sketch5" against normal blind 3
sketch "Sketch6" plane through (6, -12, 3) normal (0, -1, 0) x (1, 0, 0)
  circle A0 centre (-12, 4.5) radius 1.725
  line L0 (-10.3546, 7.35) -> (-8.7091, 4.5)
  line L1 (-8.7091, 4.5) -> (-10.3546, 1.65)
  line L2 (-10.3546, 1.65) -> (-13.6454, 1.65)
  line L3 (-13.6454, 1.65) -> (-15.2909, 4.5)
  line L4 (-15.2909, 4.5) -> (-13.6454, 7.35)
  line L5 (-13.6454, 7.35) -> (-10.3546, 7.35)
  circle A1 centre (12, 4.5) radius 1.725
  line L6 (13.6454, 7.35) -> (15.2909, 4.5)
  line L7 (15.2909, 4.5) -> (13.6454, 1.65)
  line L8 (13.6454, 1.65) -> (10.3546, 1.65)
  line L9 (10.3546, 1.65) -> (8.7091, 4.5)
  line L10 (8.7091, 4.5) -> (10.3546, 7.35)
  line L11 (10.3546, 7.35) -> (13.6454, 7.35)
  circle A2 centre (0, 13.5) radius 1.725
  line L12 (1.6454, 16.35) -> (3.2909, 13.5)
  line L13 (3.2909, 13.5) -> (1.6454, 10.65)
  line L14 (1.6454, 10.65) -> (-1.6454, 10.65)
  line L15 (-1.6454, 10.65) -> (-3.2909, 13.5)
  line L16 (-3.2909, 13.5) -> (-1.6454, 16.35)
  line L17 (-1.6454, 16.35) -> (1.6454, 16.35)
  point P0 (-6, -3)
  dimension "d30" = 2.85
  dimension "d31" = 2.85
  dimension "d32" = 2.85
extrude "Extrusion5" cut sketch "Sketch6" against normal blind 3 contours A0 | L0 L1 L2 L3 L4 L5 | A1 | L6 L7 L8 L9 L10 L11 | A2 | L12 L13 L14 L15 L16 L17
sketch "Sketch7" plane through (6, 0, 3) normal (1, 0, 0) x (0, 0, -1)
  circle A0 centre (-4.5, 6) radius 1.725
  circle A1 centre (-4.5, -18) radius 1.725
  line L0 (-9, 0) -> (-9, 12)
  line L1 (-9, -24) -> (-9, -12)
  line L2 (0, -24) -> (-9, -24)
  line L3 (0, 12) -> (-9, 12)
  point P0 (3, 0)
  dimension "d35" = 3.45
  dimension "d36" = 3.45
  dimension "d37" = 4.5
  dimension "d38" = 4.5
  dimension "d39" = 6
  dimension "d40" = 6
extrude "Extrusion6" cut sketch "Sketch7" against normal blind 3
sketch "Sketch8" plane through (0, -6, 3) normal (-1, 0, 0) x (0, 0, 1)
  circle A0 centre (4.5, 12) radius 1.725
  line L0 (1.65, 13.6454) -> (4.5, 15.2909)
  line L1 (4.5, 15.2909) -> (7.35, 13.6454)
  line L2 (7.35, 13.6454) -> (7.35, 10.3546)
  line L3 (7.35, 10.3546) -> (4.5, 8.7091)
  line L4 (4.5, 8.7091) -> (1.65, 10.3546)
  line L5 (1.65, 10.3546) -> (1.65, 13.6454)
  circle A1 centre (4.5, -12) radius 1.725
  line L6 (1.65, -10.3546) -> (4.5, -8.7091)
  line L7 (4.5, -8.7091) -> (7.35, -10.3546)
  line L8 (7.35, -10.3546) -> (7.35, -13.6454)
  line L9 (7.35, -13.6454) -> (4.5, -15.2909)
  line L10 (4.5, -15.2909) -> (1.65, -13.6454)
  line L11 (1.65, -13.6454) -> (1.65, -10.3546)
  point P0 (-3, 6)
  dimension "d43" = 2.85
  dimension "d44" = 2.85
extrude "Extrusion7" cut sketch "Sketch8" against normal blind 3 contours A0 | L0 L1 L2 L3 L4 L5 | A1 | L6 L7 L8 L9 L10 L11
sketch "Sketch9" plane through (0, 0, 12) normal (0, 0, 1) x (1, 0, 0)
  line L0 (1.5, -10.5) -> (0, -12)
  line L1 (12, -12) -> (6, -12)
  line L2 (0, -12) -> (12, -12)
  line L3 (12, -24) -> (12, -12)
  line L4 (12, -12) -> (12, -24)
  line L5 (1.5, -24) -> (0, -24)
  line L6 (12, -24) -> (0, -24)
  line L7 (0, -24) -> (0, -12)
  line L8 (0, -12) -> (-12, -12)
  point P0 (0, 0)
extrude "Extrusion8" cut sketch "Sketch9" against normal blind 12
fillet "Fillet2" radius 1.5 3 edges at (6, -12, 0) (0, 6, 0) (12, 6, 0)
fillet "Fillet3" radius 1.5 2 edges at (0.75, 0, 0) (11.25, 0, 0)
properties part number "threewayVer1"
